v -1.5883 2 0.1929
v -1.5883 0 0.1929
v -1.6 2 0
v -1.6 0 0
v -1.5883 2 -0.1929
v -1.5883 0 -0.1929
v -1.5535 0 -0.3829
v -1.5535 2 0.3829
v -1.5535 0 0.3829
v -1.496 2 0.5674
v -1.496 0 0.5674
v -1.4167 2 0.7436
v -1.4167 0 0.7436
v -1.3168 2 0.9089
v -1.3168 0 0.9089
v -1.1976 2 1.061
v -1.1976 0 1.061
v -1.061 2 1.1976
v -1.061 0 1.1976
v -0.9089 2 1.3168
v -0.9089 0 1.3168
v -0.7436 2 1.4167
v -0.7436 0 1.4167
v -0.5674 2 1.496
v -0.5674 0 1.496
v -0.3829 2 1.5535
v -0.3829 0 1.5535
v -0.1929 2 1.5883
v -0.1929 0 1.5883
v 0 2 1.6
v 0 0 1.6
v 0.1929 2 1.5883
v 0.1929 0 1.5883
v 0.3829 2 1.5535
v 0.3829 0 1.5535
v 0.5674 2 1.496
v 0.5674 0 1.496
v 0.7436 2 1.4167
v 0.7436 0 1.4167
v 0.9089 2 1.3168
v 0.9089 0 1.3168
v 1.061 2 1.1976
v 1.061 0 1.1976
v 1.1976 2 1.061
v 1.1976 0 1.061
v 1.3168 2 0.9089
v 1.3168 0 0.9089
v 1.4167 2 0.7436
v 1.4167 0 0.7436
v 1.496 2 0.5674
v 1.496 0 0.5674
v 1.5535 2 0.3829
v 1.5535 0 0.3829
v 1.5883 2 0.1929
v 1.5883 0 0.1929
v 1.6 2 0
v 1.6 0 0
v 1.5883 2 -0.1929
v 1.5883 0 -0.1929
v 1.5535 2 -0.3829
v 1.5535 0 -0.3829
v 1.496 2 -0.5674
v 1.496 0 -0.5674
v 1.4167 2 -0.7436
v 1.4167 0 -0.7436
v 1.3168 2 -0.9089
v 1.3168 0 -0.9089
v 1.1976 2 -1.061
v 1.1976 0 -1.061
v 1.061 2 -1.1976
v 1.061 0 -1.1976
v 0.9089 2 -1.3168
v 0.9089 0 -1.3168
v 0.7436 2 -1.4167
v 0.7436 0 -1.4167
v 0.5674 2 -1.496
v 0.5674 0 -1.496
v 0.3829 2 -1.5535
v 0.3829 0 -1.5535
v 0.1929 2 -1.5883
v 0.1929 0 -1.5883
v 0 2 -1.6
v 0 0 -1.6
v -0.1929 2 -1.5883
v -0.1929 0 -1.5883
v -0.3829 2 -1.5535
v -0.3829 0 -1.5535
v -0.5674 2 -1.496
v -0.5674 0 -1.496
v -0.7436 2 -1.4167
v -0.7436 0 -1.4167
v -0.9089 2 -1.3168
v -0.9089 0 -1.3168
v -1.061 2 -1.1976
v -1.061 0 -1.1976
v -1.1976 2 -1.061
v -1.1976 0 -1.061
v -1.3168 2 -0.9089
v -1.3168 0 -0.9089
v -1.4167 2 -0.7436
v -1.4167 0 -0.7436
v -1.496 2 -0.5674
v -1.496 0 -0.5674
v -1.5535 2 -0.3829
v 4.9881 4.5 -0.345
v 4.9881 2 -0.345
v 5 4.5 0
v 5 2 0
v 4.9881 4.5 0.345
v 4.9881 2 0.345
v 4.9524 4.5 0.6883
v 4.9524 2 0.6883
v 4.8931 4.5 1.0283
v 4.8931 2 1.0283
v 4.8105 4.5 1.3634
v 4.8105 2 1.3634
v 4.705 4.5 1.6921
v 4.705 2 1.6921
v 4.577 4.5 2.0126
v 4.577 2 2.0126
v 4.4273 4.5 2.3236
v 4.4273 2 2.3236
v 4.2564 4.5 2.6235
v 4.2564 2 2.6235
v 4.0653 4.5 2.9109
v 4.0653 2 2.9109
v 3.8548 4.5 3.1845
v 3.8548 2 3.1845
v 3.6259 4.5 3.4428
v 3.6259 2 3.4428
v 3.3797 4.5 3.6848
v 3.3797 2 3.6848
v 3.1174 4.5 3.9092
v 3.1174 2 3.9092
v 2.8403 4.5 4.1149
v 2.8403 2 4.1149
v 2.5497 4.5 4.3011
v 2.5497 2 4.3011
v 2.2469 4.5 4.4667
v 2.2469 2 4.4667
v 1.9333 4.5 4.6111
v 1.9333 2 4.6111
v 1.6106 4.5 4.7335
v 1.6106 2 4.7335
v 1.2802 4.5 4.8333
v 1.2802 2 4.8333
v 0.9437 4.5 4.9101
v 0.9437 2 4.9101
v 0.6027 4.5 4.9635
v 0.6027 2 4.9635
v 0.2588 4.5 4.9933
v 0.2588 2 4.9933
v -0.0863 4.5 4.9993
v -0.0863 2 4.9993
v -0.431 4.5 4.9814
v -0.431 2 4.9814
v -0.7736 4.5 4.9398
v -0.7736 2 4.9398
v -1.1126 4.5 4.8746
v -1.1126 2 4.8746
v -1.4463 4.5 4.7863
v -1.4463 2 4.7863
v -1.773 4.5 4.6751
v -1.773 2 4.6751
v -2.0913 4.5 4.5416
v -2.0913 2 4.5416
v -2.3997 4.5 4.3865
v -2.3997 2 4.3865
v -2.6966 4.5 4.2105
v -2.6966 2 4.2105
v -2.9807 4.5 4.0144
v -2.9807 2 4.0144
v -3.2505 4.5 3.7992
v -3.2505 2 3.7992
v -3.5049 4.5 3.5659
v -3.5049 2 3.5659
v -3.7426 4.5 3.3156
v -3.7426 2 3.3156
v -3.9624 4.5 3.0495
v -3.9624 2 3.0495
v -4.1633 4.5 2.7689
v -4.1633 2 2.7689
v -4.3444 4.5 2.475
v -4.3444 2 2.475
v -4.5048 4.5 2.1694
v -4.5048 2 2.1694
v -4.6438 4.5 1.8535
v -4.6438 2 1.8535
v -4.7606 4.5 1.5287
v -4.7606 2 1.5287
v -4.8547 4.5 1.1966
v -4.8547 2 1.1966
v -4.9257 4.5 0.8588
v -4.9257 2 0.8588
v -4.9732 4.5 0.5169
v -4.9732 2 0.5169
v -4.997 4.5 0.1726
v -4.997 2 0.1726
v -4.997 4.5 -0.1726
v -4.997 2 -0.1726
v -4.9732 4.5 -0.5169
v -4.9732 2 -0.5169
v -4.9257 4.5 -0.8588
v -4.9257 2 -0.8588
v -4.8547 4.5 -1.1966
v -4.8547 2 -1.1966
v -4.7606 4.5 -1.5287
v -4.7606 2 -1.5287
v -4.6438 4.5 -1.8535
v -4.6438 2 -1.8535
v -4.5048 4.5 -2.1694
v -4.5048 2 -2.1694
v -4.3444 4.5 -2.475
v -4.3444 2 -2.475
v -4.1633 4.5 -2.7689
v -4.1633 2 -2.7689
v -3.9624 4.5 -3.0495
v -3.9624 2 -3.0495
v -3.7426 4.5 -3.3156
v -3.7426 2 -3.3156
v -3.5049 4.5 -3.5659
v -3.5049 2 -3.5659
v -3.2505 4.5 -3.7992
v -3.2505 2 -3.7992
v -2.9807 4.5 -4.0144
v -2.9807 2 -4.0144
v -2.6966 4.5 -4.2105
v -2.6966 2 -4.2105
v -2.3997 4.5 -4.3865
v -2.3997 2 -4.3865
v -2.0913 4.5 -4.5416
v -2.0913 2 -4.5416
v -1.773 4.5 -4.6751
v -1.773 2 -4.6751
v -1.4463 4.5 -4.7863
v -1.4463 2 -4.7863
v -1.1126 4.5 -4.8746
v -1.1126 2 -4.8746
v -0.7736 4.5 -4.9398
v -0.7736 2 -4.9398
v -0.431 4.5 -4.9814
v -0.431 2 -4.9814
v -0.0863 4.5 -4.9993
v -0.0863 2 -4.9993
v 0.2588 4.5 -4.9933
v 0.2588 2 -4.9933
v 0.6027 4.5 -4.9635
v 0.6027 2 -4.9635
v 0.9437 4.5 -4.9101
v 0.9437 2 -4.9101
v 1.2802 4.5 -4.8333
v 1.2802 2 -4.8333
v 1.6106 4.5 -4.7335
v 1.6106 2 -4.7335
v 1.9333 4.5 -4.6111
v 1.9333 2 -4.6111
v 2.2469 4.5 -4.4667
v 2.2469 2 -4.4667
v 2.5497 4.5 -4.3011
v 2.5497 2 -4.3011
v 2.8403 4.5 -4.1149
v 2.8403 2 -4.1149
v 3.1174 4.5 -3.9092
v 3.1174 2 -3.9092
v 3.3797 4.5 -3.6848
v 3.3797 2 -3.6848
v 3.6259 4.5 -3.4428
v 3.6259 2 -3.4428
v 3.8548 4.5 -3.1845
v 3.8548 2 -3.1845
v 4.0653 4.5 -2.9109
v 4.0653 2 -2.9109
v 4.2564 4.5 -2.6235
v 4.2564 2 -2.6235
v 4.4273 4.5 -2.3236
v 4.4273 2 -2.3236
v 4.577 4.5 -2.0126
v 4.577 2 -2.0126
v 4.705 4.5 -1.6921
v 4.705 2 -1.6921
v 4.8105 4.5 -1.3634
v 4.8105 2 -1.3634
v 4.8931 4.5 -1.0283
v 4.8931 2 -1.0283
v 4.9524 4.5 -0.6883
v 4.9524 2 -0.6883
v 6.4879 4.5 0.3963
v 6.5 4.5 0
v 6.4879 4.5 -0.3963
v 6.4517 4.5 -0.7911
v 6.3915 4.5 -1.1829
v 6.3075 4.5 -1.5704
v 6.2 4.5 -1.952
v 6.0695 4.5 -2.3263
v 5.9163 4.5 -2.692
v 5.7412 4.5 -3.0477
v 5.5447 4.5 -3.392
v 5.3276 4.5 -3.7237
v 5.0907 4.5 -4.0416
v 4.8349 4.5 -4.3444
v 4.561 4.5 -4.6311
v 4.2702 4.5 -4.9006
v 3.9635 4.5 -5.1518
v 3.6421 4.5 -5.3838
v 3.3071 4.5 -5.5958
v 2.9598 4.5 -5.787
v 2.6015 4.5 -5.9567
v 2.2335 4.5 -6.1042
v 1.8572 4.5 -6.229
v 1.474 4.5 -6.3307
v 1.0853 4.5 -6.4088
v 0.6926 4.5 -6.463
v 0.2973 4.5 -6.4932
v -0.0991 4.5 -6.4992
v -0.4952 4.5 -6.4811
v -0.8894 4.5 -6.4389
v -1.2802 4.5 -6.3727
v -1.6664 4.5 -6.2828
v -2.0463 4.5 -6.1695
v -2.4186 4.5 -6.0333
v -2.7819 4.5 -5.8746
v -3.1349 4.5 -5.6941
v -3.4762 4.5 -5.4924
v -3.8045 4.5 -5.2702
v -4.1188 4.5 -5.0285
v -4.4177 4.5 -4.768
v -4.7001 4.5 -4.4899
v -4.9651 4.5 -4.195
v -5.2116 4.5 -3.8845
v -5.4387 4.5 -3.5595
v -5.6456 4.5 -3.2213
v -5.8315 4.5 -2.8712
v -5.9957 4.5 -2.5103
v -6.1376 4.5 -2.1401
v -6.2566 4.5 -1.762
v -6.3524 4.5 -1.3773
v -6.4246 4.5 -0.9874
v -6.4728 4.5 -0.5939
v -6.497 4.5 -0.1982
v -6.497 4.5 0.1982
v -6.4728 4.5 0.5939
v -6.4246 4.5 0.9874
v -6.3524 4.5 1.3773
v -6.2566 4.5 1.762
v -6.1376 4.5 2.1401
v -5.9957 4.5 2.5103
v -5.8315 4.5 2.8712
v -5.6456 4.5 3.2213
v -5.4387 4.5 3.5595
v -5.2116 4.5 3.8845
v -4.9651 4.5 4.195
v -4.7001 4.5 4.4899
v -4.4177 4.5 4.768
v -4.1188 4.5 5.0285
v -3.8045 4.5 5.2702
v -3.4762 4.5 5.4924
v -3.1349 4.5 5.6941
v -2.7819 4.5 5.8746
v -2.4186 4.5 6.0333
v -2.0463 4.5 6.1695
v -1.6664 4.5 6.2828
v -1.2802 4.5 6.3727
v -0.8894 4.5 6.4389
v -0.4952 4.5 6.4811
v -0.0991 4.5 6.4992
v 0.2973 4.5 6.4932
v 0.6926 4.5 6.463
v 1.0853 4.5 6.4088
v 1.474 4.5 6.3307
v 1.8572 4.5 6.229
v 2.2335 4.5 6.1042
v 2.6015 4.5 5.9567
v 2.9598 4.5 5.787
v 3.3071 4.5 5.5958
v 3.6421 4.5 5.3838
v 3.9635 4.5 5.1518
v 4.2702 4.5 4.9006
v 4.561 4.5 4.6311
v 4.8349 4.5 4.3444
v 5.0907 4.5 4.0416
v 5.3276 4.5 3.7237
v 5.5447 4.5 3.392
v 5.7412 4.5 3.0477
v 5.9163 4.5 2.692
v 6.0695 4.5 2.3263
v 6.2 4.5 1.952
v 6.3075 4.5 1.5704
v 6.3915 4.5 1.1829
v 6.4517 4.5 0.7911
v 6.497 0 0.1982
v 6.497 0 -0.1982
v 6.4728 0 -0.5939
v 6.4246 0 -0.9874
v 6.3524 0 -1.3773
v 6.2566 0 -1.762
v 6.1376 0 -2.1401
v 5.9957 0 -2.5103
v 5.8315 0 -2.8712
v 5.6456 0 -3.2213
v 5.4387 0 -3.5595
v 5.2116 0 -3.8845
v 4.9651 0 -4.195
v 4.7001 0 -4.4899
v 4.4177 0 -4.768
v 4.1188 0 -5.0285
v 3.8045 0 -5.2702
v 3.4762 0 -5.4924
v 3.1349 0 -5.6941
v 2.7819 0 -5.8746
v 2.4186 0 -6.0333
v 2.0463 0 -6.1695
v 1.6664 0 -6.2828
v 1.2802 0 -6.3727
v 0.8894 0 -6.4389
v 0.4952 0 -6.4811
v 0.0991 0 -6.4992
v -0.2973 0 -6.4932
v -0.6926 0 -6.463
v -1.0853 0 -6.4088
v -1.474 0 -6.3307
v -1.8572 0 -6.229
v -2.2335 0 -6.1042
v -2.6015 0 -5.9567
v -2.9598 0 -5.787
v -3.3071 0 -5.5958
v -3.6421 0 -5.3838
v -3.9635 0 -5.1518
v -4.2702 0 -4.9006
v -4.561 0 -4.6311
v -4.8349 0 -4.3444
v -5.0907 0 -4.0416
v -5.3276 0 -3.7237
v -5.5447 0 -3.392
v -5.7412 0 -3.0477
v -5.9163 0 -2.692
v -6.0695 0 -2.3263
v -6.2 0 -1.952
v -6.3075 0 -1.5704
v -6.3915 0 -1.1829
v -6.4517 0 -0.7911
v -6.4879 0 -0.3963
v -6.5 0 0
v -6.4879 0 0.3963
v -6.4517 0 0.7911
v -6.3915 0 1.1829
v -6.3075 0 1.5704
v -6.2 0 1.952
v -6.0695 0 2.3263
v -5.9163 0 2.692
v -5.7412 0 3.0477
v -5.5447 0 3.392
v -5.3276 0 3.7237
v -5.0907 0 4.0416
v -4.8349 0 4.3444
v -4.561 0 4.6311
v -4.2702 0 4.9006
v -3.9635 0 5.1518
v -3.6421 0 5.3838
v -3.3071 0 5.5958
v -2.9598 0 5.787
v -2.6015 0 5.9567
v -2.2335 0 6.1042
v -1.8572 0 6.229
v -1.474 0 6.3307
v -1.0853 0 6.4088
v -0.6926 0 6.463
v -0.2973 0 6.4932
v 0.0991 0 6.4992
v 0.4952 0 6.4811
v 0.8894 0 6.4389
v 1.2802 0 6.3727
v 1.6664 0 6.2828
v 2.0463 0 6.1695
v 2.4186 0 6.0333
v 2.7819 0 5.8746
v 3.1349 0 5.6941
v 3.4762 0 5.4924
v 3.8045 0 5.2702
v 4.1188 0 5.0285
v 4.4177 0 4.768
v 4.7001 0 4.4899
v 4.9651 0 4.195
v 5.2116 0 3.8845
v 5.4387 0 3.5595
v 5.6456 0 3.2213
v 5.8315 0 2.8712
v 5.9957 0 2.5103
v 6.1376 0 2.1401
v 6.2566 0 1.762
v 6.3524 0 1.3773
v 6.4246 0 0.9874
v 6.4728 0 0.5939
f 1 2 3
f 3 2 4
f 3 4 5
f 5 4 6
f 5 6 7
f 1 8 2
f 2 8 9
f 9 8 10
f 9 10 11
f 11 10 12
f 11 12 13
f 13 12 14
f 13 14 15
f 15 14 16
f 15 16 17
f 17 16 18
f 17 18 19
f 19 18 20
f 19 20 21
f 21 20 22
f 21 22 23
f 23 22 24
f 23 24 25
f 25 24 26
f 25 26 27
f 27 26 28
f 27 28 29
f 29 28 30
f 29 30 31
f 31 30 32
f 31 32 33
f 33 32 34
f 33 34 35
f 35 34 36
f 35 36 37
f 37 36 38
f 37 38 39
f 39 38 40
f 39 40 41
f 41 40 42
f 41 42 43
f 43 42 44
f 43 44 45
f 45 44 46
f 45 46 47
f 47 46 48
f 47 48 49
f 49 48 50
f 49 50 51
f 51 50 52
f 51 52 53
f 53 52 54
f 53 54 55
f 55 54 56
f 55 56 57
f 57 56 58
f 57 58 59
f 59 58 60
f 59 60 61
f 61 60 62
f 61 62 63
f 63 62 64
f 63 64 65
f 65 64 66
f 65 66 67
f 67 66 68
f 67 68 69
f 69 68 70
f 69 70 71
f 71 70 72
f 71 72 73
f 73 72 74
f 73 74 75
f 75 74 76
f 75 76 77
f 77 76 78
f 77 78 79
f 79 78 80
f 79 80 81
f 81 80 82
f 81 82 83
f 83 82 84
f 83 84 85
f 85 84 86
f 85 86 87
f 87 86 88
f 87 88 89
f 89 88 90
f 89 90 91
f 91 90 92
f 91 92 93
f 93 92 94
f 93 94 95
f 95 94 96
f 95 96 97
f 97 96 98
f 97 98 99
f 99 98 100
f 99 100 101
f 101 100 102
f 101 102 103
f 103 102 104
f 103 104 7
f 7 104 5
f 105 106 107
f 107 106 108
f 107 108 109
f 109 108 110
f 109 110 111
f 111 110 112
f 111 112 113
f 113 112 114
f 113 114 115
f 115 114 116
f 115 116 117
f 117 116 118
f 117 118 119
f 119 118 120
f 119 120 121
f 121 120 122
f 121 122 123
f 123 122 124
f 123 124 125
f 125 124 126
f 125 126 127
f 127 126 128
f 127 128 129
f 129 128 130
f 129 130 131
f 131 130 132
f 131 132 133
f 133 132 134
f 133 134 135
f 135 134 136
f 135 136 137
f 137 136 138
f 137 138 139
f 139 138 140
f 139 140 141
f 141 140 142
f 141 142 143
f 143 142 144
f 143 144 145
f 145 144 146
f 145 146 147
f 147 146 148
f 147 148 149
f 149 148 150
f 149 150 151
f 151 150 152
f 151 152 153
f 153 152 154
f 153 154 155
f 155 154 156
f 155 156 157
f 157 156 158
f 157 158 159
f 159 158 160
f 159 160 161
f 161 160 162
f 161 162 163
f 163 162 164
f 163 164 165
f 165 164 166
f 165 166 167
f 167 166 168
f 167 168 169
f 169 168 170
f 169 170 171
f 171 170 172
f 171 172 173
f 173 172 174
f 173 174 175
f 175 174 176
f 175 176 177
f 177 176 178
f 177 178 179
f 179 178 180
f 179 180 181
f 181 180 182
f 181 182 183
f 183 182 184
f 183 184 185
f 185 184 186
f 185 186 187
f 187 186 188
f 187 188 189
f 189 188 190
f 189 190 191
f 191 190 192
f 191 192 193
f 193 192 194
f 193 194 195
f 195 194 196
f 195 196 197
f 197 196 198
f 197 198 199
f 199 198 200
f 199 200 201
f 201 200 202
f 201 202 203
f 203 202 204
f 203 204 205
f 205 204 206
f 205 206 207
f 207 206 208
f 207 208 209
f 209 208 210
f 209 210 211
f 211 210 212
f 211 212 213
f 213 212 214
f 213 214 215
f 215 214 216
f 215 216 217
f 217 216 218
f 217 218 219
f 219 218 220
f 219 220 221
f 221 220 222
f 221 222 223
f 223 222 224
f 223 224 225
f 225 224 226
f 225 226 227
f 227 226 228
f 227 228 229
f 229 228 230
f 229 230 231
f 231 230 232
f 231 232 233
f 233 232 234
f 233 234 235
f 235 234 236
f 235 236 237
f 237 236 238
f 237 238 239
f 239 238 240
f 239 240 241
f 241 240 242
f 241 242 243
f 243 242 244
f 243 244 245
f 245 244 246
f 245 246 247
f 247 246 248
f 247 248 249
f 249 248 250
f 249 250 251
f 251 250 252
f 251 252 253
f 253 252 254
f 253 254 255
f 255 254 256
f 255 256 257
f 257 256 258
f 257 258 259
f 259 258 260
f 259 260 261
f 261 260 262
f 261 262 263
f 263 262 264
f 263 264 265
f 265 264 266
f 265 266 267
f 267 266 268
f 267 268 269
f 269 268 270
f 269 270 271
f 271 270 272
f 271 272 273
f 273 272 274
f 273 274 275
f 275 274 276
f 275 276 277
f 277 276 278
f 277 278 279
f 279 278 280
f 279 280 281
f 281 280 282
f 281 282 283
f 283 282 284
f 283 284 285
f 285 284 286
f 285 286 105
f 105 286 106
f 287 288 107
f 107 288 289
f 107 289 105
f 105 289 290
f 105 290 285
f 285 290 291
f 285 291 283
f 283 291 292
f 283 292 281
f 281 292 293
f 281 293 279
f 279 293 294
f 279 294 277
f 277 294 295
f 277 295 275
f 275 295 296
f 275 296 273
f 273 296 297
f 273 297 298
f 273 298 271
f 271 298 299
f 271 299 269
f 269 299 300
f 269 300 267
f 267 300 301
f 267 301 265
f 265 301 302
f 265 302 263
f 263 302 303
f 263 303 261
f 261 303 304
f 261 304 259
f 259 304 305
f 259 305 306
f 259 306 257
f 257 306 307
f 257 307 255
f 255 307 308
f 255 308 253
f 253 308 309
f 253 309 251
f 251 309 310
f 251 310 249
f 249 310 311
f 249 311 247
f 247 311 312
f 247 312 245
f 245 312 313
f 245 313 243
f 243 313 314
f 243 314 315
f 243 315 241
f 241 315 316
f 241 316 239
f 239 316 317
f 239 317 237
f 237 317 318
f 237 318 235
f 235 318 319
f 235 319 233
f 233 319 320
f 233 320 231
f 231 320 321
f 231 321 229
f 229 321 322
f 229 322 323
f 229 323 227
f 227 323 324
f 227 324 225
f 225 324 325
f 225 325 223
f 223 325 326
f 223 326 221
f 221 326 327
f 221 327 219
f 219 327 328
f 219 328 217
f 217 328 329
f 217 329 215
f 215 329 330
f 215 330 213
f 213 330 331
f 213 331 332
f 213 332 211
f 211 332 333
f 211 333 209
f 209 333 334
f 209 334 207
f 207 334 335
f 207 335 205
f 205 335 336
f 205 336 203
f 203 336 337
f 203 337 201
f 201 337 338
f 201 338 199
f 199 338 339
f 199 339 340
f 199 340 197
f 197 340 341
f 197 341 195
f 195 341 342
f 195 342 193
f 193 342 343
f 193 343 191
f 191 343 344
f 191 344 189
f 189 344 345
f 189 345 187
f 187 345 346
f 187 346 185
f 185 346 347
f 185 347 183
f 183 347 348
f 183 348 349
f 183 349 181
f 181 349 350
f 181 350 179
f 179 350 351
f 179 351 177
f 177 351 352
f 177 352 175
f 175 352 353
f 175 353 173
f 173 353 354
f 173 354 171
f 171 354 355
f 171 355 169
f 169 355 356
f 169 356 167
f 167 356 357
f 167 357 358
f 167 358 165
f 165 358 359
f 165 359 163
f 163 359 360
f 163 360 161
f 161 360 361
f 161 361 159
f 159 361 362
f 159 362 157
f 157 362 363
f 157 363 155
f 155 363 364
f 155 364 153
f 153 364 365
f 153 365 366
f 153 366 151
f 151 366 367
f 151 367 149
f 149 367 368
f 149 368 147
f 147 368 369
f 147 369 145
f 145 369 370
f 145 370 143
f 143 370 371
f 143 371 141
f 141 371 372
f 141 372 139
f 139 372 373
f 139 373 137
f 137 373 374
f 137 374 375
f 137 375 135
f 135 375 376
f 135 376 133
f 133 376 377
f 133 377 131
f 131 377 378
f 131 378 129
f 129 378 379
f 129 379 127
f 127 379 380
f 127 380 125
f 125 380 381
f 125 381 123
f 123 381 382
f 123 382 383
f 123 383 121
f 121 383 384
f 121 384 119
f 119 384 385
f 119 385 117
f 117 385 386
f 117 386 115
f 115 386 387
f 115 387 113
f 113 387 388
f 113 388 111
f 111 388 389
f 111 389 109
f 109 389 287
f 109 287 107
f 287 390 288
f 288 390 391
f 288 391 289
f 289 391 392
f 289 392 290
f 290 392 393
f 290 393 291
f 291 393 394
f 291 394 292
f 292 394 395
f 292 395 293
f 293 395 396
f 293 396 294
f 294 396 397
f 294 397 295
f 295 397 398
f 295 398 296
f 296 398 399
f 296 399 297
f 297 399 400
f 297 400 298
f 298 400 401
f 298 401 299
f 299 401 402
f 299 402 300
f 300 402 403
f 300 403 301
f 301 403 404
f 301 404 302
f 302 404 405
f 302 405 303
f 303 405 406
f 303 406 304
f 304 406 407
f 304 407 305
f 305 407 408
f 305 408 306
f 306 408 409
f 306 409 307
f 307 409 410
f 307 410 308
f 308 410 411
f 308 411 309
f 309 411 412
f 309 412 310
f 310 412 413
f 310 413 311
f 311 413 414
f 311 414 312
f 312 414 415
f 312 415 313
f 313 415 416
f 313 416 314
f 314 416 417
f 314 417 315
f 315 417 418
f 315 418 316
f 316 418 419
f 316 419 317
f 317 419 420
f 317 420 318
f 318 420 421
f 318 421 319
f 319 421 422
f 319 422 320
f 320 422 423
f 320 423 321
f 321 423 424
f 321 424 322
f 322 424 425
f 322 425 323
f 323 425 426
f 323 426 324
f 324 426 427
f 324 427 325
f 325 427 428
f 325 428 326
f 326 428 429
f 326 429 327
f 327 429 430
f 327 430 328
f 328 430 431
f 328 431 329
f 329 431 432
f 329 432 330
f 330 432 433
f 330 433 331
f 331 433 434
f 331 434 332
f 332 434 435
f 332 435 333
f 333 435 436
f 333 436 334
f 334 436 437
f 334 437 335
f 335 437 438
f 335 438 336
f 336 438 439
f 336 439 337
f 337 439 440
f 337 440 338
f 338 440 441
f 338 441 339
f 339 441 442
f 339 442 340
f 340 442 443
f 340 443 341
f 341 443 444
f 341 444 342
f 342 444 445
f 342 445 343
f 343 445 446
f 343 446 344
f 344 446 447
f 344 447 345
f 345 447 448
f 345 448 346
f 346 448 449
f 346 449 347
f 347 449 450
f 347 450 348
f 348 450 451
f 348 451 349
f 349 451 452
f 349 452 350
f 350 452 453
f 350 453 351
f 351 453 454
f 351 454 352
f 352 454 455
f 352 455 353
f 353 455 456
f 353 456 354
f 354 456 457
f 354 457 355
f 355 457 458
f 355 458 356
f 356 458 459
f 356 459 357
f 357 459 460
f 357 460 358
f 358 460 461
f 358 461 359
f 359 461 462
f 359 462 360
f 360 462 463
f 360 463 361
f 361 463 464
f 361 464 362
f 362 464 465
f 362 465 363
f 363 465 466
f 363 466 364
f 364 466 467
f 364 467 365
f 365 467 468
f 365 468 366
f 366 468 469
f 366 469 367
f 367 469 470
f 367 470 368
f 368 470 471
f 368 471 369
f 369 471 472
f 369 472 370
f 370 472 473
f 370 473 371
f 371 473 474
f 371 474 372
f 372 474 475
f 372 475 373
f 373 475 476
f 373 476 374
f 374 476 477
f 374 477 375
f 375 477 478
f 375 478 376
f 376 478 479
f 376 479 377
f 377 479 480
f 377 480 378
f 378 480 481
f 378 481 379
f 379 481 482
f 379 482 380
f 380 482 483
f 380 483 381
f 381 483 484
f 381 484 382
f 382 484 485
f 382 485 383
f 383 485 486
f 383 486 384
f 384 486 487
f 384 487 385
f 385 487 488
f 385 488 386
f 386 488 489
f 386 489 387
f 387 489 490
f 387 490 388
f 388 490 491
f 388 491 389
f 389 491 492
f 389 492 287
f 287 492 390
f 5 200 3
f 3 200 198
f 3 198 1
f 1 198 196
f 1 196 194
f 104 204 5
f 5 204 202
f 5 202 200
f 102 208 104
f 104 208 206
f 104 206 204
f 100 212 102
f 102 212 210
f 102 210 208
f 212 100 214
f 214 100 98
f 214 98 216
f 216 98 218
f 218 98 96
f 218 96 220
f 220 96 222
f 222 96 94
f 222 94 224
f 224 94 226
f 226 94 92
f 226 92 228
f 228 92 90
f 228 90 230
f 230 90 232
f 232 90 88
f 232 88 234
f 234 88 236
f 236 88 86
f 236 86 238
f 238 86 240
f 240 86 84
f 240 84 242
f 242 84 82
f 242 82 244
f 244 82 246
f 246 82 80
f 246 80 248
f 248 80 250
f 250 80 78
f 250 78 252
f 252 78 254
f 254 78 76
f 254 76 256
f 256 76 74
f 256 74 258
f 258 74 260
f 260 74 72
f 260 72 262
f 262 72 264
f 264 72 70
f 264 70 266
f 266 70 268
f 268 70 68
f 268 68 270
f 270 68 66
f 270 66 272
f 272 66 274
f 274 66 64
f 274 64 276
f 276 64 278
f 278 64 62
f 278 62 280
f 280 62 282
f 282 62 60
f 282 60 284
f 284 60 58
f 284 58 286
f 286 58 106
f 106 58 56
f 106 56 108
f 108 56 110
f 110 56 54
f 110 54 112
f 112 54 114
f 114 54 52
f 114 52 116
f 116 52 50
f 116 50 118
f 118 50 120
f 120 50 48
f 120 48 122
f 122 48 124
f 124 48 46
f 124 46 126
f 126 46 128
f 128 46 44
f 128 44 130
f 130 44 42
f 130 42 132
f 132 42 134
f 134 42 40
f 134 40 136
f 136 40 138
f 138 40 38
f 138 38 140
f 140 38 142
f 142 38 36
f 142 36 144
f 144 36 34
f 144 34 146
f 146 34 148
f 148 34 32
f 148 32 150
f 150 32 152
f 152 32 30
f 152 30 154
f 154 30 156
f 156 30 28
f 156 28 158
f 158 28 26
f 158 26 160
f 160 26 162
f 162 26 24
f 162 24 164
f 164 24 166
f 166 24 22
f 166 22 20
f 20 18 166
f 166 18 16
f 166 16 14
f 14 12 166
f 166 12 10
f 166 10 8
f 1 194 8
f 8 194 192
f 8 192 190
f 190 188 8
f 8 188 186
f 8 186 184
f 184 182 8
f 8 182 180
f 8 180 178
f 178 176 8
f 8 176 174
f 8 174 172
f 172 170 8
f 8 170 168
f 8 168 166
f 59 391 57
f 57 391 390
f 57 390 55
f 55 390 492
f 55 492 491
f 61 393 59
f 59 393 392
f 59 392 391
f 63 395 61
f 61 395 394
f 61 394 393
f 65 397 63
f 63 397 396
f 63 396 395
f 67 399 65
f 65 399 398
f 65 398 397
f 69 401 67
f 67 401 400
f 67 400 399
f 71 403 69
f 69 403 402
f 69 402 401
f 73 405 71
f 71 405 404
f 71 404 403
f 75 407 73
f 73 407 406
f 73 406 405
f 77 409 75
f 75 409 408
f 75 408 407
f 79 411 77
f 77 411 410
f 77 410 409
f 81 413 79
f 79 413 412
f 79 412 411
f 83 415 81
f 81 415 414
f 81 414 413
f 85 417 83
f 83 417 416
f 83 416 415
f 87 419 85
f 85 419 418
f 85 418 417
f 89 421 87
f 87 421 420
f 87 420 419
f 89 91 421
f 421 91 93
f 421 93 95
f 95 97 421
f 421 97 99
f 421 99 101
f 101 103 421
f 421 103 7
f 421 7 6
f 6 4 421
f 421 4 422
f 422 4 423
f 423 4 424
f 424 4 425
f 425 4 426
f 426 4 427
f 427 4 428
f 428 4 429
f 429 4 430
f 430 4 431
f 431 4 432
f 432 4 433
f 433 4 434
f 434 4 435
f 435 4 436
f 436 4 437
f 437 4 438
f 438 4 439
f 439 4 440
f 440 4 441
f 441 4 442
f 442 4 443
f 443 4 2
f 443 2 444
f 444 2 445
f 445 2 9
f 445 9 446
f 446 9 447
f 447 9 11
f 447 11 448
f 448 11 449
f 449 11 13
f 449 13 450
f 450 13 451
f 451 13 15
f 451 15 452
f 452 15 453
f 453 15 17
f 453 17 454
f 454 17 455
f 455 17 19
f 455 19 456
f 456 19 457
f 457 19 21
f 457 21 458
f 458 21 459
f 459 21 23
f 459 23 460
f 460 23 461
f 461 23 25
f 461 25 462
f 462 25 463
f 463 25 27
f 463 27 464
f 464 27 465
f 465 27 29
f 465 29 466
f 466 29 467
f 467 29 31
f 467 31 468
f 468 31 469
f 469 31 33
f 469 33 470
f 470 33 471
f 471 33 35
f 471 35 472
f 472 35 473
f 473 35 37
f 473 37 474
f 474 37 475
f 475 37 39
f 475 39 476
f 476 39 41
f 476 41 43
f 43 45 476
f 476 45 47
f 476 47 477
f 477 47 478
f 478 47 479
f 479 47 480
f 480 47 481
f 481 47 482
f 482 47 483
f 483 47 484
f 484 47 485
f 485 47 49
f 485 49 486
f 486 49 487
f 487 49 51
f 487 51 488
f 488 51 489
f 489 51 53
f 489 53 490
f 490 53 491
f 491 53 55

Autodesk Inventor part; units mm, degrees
ref_plane "YZ Plane" through (0, 0, 0) normal (1, 0, 0) x (0, 1, 0)
ref_plane "XZ Plane" through (0, 0, 0) normal (0, 1, 0) x (-1, 0, 0)
ref_plane "XY Plane" through (0, 0, 0) normal (0, 0, 1) x (1, 0, 0)
sketch "Skizze1" plane through (0, 0, 0) normal (0, 1, 0) x (-1, 0, 0)
  circle A0 centre (0, 0) radius 6.5
  dimension "d0" = 13
extrude "Extrusion1" add sketch "Skizze1" along normal blind 2
sketch "Skizze2" plane through (0, 2, 0) normal (0, 1, 0) x (1, 0, 0)
  circle A0 centre (0, 0) radius 5
  circle A1 centre (0, 0) radius 6.5
  dimension "d3" = 10
  dimension "d4" = 13
extrude "Extrusion2" add sketch "Skizze2" along normal blind 2.5
sketch "Skizze3" plane through (0, 0, 0) normal (0, -1, 0) x (1, 0, 0)
  circle A0 centre (0, 0) radius 1.6
  dimension "d7" = 3.2
extrude "Extrusion3" cut sketch "Skizze3" against normal up to surface (2 mm away)
properties part number "Gegenstück_Welle_Diff"
